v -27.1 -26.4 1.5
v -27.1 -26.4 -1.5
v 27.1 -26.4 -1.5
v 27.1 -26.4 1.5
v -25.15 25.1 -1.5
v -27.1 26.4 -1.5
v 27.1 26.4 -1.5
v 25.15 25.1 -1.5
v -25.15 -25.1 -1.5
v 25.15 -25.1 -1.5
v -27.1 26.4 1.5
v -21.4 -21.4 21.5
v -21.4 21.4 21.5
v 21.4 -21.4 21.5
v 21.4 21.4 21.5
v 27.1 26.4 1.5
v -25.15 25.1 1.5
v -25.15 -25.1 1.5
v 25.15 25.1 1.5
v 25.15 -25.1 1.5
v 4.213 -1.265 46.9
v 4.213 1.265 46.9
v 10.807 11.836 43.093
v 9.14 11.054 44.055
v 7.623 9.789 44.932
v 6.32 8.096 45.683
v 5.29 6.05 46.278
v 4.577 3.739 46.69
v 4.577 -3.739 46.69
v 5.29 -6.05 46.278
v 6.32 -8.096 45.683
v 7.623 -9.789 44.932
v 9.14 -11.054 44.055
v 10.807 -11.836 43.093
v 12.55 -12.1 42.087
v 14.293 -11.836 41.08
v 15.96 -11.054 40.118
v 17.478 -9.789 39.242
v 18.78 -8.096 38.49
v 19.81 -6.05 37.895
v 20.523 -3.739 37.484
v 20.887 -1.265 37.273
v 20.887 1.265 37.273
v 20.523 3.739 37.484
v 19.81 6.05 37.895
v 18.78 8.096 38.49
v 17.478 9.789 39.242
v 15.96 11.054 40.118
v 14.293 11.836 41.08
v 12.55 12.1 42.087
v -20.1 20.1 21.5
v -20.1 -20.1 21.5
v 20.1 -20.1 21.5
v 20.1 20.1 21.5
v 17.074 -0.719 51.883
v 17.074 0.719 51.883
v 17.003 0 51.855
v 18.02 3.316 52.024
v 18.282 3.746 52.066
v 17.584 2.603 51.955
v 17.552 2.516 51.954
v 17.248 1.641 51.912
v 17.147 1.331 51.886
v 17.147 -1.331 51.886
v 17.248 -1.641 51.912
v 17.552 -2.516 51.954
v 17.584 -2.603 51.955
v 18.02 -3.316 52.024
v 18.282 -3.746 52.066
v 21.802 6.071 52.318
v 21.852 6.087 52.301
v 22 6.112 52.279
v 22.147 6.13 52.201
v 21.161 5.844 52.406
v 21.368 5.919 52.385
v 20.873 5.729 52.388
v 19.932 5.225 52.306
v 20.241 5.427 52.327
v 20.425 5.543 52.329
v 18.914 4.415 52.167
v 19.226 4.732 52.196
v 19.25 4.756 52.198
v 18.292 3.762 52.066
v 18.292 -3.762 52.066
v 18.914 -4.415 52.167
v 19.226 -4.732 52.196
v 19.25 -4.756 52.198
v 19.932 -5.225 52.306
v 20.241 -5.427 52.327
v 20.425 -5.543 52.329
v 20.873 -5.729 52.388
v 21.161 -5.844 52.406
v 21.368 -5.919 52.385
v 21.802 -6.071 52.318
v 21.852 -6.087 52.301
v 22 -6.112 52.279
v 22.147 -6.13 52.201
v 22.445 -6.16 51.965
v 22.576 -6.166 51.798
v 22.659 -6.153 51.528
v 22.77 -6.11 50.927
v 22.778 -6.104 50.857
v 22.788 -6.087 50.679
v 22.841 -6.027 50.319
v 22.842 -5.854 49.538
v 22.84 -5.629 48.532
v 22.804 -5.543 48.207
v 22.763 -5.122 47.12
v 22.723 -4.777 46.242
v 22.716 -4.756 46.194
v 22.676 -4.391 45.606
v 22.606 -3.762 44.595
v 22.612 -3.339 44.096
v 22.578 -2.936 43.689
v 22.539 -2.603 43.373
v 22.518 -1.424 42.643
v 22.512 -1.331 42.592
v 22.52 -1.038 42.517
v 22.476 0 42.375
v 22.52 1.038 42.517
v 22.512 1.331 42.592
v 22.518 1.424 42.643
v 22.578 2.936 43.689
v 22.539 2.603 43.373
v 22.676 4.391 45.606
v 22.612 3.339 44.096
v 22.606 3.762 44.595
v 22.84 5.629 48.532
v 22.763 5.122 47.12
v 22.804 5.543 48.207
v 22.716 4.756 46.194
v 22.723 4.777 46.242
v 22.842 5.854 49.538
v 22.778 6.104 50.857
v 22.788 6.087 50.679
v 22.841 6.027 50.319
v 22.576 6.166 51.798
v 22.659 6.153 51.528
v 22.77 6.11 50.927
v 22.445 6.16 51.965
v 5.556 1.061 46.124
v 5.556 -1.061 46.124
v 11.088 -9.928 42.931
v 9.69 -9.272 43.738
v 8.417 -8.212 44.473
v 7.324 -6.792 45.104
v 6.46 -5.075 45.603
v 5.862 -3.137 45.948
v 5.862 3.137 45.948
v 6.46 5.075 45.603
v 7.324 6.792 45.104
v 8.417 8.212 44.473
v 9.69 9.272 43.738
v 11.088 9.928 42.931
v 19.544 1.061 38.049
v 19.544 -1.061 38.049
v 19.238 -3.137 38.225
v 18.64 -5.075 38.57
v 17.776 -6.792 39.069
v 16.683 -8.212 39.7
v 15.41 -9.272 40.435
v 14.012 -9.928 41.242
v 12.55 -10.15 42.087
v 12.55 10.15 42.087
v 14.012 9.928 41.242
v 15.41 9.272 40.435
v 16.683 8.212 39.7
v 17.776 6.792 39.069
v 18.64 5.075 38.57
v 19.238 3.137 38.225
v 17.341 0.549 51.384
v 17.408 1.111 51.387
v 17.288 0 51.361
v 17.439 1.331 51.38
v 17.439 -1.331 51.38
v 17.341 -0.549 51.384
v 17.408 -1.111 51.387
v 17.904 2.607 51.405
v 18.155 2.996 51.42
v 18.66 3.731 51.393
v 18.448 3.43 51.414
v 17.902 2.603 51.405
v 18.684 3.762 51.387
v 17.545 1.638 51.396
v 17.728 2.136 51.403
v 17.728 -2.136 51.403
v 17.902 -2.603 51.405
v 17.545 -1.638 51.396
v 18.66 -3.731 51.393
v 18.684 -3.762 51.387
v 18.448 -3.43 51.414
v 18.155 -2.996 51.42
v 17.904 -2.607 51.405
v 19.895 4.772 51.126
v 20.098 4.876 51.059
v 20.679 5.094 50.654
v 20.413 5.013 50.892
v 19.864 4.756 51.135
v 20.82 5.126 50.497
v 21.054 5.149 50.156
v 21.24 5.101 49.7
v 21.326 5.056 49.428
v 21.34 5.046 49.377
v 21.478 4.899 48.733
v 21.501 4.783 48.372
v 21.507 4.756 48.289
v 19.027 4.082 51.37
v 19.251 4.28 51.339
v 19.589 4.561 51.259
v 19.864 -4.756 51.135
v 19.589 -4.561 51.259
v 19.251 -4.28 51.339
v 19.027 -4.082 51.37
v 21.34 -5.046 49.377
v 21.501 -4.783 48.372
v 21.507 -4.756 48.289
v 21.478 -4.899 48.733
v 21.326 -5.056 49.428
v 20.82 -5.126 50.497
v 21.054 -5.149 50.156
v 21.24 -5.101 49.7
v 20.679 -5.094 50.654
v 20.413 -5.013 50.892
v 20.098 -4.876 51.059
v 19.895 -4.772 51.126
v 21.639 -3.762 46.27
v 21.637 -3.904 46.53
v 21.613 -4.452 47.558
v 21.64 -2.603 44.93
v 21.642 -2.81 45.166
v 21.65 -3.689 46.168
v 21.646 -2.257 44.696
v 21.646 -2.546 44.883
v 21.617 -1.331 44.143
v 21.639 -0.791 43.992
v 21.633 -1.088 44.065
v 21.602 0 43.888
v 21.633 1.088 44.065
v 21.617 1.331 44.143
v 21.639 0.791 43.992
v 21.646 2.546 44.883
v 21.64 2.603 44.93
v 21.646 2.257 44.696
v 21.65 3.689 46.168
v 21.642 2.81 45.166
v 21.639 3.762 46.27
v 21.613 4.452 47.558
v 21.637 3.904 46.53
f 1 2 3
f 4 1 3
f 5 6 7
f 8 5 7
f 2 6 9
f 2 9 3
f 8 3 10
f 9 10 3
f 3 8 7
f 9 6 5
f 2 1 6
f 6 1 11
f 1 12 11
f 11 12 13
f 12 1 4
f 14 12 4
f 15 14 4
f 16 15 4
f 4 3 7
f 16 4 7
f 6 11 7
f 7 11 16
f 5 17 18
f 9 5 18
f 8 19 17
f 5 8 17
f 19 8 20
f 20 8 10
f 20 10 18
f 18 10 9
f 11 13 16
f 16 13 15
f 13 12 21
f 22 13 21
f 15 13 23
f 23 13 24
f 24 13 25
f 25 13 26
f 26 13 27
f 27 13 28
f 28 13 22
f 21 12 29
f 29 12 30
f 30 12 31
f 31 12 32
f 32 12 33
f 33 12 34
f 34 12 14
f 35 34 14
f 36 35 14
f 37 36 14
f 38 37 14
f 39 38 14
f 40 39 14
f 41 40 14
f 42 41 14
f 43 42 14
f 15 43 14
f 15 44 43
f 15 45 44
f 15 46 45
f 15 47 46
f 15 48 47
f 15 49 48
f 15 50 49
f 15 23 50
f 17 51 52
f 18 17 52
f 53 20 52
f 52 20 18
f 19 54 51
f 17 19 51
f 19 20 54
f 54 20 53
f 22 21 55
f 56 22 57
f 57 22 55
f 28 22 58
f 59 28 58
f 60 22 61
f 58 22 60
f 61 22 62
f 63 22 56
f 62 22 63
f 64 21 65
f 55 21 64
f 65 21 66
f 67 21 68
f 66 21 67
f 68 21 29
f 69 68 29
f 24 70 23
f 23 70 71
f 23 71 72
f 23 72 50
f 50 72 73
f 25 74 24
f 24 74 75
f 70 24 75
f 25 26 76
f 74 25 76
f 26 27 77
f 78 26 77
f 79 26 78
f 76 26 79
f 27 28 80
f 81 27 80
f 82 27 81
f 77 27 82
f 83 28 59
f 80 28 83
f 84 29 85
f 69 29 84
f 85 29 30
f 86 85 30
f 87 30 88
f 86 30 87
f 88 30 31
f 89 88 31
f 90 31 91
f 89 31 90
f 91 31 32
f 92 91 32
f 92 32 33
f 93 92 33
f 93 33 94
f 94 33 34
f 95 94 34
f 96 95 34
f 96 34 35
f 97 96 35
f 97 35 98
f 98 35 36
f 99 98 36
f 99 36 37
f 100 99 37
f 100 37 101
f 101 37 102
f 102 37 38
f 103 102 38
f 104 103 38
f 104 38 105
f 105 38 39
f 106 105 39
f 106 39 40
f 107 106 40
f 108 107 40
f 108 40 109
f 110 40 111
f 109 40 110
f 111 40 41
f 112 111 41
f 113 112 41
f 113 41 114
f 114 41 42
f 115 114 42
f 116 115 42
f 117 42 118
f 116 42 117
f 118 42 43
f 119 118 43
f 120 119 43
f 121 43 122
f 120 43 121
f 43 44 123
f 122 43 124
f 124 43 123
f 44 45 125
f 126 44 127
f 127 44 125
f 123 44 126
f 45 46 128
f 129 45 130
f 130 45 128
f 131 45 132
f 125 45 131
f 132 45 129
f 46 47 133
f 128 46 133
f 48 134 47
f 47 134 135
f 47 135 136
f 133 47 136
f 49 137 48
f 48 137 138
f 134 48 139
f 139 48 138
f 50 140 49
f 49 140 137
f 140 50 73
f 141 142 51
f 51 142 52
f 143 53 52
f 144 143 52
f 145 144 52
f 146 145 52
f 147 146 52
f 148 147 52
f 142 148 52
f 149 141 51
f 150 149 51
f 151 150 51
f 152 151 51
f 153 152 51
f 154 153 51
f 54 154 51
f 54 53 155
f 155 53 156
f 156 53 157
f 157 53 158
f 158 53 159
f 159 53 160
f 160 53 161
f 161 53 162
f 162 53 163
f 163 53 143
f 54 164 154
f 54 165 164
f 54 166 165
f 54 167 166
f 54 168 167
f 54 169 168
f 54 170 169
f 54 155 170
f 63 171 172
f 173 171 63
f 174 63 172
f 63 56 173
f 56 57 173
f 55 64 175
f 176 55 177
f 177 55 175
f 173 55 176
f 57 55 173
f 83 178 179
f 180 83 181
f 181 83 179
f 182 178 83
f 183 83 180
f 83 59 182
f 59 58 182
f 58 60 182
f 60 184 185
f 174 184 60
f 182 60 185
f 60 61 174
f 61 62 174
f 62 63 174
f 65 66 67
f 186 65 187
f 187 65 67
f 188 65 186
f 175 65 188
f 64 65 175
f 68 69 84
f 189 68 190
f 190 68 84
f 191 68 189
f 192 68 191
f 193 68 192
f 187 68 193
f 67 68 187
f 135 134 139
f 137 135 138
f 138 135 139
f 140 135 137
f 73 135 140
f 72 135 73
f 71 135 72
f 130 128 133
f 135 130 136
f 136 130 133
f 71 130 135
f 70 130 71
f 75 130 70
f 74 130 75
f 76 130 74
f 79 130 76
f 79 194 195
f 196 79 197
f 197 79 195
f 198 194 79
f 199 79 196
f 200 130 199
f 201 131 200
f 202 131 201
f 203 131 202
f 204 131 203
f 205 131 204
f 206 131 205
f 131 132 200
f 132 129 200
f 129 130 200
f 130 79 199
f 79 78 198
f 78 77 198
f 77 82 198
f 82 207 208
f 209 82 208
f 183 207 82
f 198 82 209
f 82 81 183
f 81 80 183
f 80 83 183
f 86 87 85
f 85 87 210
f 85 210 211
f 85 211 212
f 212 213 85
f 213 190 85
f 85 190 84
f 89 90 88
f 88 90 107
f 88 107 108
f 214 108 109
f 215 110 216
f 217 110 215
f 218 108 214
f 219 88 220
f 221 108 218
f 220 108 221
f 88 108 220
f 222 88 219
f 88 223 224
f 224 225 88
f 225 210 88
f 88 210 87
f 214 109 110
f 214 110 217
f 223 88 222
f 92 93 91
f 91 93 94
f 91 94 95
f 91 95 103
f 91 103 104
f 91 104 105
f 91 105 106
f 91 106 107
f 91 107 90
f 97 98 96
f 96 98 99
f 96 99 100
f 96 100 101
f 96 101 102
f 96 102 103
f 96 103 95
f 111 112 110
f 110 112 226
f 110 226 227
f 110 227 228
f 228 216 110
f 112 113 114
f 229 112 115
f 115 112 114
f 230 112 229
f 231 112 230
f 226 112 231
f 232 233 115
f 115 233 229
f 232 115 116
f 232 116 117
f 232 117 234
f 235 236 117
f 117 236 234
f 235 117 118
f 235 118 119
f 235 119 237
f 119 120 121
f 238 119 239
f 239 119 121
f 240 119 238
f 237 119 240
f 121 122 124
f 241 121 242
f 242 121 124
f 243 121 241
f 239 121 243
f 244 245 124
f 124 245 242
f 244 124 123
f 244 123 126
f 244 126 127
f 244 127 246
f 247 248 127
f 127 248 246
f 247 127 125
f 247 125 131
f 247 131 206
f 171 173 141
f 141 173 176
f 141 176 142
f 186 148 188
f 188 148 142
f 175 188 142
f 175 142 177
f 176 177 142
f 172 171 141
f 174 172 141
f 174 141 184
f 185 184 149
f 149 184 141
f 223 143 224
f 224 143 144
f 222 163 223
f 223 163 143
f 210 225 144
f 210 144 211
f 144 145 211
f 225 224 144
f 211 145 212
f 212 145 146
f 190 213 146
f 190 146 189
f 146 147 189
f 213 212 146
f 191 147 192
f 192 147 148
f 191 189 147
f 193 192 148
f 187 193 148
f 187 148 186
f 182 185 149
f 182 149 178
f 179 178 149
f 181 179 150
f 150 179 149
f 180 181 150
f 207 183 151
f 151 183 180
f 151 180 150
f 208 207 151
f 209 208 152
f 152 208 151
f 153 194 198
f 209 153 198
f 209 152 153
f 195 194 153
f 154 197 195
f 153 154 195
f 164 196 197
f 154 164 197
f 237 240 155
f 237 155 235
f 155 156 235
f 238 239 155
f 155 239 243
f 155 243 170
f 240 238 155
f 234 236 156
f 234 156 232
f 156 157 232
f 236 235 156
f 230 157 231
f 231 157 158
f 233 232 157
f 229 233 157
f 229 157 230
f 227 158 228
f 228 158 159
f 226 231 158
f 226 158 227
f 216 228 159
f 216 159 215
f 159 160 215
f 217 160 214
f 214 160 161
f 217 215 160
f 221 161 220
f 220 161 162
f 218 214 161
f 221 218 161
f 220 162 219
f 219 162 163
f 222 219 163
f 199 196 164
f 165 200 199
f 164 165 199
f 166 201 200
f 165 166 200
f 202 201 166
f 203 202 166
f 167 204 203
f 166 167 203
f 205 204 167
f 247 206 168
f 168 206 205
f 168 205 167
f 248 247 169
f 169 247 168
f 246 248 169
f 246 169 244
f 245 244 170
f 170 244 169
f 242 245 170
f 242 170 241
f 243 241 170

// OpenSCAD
//-- Blower (centrifugal) fan duct for the Direct Drive
//-- Extruder by Marty Rice.
//-- AndrewBCN - Barcelona, November 2014
//-- GPLV3

//-- based on source code by Robert Quattlebaum (darco)
//-- Thingiverse #387301

//-- uses a 5015S 12V blower (centrifugal) fan

$fs=0.1;

module FanDuct() {
	tol=0.10;
	wallThickness=1.3; // tested with 1.3mm, but original value was 0.8mm and should work too

	module Shape(dia) {

		hull() {
			translate([0,0,-0]) cube([50+dia*3,50+dia*2,3],center=true);
			translate([0,0,20]) cube([40+dia*2,40+dia*2,3],center=true);
		}
		hull() {
			translate([0,0,20]) cube([40+dia*2,40+dia*2,3],center=true);
			translate([12.5,0,42]) rotate([30,0,90]) scale([1,0.8,1]) cylinder(r=10+dia*1.5,h=0.1);
		}
		difference(){
		hull() {
			translate([12.5,0,42]) rotate([30,0,90]) scale([1,0.8,1]) cylinder(r=10+dia*1.5,h=0.1);
			translate([23,0,53]) rotate([0,0,90]) scale([1,0.5,1]) cylinder(r=3.5+dia*1.5,h=0.1);
		}
		translate([22,0,56]) rotate([0,90+60,0]) cylinder(r=5+dia,h=20);
		}
	}

	difference() {
		Shape(dia=wallThickness+tol);
		Shape(dia=tol);

	}
}


FanDuct();
